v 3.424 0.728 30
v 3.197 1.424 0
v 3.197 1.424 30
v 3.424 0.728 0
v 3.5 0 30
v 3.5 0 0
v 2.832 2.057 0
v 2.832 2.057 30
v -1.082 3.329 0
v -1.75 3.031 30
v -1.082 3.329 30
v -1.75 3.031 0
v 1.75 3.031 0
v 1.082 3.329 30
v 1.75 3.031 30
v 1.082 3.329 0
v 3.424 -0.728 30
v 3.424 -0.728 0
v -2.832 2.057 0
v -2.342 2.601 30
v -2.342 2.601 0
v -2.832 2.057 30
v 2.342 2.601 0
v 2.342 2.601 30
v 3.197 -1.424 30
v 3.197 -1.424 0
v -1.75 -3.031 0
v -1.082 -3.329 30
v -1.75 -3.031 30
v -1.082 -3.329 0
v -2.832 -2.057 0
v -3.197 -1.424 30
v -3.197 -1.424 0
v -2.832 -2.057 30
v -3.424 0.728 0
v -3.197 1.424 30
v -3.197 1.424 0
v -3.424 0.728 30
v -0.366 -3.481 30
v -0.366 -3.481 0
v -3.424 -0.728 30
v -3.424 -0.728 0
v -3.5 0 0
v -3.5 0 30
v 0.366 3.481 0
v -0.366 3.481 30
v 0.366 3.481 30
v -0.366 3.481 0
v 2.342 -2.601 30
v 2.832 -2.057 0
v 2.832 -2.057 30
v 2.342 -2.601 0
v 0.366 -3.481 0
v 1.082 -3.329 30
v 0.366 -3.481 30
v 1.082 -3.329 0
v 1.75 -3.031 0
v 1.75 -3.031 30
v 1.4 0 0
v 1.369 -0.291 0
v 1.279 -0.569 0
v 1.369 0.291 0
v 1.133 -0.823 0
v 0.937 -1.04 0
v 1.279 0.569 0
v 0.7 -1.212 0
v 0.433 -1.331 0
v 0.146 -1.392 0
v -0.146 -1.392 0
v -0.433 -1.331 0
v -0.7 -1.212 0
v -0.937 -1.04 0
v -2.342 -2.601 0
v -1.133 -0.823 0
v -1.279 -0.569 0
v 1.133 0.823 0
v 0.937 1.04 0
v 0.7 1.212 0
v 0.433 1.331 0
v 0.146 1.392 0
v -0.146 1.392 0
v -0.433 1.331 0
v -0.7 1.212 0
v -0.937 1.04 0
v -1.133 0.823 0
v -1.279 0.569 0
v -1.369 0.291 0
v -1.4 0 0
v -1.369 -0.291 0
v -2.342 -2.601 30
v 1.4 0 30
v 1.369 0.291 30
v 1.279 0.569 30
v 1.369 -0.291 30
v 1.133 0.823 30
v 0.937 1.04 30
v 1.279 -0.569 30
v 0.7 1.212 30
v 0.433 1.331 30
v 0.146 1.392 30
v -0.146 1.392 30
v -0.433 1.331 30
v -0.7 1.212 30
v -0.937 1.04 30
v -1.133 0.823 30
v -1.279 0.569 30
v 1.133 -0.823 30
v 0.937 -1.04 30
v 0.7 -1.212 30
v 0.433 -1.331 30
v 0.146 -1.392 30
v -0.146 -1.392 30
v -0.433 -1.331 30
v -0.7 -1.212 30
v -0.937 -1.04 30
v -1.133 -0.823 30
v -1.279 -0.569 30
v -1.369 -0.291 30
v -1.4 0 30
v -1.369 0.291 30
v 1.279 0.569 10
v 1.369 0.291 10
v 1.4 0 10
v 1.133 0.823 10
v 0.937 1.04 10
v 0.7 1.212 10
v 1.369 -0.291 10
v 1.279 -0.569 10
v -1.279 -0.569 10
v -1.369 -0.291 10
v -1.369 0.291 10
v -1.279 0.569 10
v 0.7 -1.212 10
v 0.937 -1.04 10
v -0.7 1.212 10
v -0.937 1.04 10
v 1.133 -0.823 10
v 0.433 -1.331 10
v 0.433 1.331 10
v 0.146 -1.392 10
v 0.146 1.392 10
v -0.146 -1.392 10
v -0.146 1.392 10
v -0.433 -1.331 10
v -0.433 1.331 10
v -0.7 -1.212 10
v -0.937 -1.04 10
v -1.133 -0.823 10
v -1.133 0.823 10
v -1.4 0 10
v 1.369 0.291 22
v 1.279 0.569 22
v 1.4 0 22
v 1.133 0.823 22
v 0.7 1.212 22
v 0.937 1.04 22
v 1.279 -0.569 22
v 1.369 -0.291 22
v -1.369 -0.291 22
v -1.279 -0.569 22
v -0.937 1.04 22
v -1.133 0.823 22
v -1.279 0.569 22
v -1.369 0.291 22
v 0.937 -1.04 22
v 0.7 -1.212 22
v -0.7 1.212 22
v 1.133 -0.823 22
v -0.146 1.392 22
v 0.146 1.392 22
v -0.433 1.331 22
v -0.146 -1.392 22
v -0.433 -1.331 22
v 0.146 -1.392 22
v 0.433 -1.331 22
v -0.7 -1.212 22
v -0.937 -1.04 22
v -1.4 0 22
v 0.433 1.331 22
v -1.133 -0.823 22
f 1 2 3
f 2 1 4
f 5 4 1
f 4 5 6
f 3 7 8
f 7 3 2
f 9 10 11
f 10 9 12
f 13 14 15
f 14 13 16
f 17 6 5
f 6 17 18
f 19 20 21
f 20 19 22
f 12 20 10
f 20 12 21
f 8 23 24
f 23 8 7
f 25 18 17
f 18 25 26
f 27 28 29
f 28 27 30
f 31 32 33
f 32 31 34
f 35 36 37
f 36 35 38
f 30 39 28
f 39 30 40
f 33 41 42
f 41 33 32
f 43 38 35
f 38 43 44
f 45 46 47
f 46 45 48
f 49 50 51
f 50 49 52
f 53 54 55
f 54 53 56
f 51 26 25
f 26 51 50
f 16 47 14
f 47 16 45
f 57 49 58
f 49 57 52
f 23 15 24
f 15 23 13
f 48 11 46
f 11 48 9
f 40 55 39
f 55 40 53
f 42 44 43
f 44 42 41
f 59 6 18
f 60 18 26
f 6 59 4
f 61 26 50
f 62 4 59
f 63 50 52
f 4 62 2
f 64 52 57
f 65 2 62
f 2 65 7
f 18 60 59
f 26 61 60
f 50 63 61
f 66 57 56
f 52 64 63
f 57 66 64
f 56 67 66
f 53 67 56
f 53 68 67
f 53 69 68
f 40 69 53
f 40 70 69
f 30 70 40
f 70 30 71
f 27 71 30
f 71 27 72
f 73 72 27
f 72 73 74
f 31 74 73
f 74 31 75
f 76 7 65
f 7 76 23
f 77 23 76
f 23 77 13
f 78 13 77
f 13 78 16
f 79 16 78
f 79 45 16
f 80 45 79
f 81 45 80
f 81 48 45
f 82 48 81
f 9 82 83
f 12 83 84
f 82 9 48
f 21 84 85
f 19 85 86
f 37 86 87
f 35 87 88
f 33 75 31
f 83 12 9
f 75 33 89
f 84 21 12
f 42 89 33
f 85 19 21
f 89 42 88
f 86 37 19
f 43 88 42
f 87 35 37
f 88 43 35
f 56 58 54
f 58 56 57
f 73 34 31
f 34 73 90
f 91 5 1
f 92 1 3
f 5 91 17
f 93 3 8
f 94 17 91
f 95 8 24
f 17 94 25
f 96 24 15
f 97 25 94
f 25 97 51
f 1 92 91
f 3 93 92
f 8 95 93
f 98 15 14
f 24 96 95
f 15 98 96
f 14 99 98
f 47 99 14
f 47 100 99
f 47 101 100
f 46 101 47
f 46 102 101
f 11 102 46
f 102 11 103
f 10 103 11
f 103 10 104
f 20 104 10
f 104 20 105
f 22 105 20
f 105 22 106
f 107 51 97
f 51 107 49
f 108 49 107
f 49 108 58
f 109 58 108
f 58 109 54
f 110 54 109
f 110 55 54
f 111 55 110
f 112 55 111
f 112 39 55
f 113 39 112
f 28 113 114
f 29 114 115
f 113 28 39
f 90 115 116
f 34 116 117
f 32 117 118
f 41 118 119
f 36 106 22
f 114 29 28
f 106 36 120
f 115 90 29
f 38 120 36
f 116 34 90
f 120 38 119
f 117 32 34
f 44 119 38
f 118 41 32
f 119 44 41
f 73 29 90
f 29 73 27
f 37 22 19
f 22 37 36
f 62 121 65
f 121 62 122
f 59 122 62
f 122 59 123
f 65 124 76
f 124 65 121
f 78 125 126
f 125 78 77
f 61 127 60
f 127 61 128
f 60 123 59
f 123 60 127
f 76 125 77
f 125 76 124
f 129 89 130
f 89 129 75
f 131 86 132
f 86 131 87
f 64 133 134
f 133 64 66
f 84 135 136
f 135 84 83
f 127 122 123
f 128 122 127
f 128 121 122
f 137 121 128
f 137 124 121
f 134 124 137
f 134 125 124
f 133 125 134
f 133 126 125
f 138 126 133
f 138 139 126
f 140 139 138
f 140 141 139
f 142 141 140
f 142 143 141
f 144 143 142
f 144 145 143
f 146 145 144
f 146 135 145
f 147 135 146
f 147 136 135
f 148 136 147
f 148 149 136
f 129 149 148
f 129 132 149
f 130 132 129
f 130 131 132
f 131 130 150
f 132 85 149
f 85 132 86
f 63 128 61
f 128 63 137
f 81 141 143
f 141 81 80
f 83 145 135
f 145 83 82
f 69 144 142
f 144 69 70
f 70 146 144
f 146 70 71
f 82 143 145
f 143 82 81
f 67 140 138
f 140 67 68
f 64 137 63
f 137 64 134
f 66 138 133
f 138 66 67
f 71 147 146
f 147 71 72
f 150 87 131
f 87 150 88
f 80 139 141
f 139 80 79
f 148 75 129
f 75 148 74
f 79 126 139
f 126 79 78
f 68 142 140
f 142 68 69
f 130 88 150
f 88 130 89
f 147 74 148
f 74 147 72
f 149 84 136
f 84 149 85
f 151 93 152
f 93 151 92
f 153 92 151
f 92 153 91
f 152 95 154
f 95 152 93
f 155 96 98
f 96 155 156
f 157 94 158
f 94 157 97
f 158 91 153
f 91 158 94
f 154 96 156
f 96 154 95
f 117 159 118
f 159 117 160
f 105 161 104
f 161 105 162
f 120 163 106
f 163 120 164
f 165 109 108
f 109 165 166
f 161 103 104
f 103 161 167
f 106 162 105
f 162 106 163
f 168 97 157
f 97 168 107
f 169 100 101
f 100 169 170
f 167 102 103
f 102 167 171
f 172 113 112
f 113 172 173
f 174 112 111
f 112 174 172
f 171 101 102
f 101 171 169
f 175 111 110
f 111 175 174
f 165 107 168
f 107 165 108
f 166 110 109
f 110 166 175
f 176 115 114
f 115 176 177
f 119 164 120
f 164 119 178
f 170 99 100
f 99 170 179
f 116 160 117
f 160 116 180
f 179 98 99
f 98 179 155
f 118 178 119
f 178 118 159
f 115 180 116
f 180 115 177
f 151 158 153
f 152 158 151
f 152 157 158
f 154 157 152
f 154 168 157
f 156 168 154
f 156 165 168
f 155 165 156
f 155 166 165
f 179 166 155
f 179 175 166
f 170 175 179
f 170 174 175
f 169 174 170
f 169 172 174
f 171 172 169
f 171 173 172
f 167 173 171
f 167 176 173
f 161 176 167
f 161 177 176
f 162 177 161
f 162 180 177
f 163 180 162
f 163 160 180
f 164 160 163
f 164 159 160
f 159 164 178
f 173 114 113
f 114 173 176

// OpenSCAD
$fn=30;
difference(){
cylinder(d=7,h=30);
cylinder(d=2.8,h=10);
translate([0,0,22])cylinder(d=2.8,h=10);
}
